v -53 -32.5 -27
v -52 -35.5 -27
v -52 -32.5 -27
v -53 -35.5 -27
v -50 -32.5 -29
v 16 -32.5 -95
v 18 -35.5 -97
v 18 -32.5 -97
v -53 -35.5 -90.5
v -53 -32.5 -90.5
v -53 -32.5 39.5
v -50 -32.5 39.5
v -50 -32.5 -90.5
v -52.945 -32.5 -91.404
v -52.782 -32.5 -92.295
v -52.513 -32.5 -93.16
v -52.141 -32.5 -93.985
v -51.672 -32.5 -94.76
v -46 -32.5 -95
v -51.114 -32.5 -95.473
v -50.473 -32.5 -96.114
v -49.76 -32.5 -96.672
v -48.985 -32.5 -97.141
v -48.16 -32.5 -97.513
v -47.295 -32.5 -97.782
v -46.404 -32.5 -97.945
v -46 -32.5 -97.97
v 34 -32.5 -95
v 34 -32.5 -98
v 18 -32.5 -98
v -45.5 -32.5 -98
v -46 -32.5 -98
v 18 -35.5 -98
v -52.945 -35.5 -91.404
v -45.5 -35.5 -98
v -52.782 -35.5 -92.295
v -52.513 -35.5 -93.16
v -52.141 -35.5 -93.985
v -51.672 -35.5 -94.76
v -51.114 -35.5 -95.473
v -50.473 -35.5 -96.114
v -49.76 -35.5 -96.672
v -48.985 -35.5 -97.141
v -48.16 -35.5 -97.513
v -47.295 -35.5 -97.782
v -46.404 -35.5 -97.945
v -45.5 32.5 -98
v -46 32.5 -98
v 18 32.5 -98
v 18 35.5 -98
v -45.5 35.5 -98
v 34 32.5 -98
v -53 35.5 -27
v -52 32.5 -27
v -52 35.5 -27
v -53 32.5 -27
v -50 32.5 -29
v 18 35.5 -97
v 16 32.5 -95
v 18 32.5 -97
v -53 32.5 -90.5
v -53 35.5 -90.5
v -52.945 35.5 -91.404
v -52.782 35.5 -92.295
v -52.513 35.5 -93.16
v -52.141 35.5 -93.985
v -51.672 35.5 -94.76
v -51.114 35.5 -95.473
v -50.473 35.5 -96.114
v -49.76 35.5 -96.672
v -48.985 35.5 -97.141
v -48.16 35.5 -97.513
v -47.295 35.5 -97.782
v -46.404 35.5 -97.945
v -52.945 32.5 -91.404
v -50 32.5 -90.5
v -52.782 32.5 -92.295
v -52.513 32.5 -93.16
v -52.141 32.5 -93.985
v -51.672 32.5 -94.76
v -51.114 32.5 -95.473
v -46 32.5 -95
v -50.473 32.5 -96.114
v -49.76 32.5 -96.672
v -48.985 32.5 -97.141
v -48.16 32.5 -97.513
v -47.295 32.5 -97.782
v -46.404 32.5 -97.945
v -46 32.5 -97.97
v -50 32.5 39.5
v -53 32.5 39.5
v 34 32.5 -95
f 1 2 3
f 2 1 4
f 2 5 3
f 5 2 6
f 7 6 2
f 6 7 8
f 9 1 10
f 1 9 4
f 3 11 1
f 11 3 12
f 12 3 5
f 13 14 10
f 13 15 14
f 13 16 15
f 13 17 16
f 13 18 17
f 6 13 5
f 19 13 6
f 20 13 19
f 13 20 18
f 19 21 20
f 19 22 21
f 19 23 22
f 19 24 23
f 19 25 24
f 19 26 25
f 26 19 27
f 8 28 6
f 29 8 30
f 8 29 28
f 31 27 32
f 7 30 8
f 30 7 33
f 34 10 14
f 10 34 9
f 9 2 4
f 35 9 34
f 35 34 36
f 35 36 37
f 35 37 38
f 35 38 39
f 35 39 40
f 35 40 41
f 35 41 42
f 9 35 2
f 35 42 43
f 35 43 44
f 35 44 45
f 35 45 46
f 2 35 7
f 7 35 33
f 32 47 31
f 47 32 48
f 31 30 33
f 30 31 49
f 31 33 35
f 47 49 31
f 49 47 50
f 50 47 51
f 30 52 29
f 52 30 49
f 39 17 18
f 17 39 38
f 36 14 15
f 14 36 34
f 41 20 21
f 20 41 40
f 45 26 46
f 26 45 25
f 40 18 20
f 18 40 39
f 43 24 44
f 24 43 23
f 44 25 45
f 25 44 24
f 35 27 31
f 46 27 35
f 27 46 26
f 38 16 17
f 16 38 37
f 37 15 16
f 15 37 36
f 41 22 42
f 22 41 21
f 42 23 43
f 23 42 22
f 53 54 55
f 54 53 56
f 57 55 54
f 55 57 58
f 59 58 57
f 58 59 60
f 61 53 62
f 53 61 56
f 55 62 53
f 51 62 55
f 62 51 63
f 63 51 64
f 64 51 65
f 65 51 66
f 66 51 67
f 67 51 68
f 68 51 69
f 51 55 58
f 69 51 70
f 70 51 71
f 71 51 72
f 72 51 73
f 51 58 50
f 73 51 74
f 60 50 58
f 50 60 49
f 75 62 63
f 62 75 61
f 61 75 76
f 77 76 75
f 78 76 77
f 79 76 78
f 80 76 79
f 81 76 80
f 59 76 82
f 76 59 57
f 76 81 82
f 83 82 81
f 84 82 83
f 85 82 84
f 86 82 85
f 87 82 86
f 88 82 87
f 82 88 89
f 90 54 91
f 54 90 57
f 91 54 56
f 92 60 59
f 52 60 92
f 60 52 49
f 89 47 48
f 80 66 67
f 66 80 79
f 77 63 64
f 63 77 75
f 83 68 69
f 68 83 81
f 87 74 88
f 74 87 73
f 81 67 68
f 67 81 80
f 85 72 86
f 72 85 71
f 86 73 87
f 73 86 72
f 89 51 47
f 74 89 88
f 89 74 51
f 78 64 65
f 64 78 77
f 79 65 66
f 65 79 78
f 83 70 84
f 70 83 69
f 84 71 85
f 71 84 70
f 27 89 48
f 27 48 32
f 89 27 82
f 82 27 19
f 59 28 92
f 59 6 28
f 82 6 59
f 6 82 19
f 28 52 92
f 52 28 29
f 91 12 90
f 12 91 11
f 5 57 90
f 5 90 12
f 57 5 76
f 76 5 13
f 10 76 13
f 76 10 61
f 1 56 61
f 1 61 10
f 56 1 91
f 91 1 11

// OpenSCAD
// brique = [95,60,170];
brique = [100,65,190];

%cube(brique, center=true);


translate([4.5-brique.x/2,0,4.5-brique.z/2]) {
    for (j=[-1,1]) translate([0,j*(brique.y/2+1.5),0]) hull() {
        hull() {
            for (i=[0,1]) translate([70*i-7,0,63-i*70]) cube([1,3,1], center=true);
            rotate([90,0,0]) cylinder(r=7.5,h=3,center=true,$fn=52);
        }
    }
    for (j=[0,1]) {
        translate([20+19.5,0,-6]) cube([80,brique.y,3], center=true);
        translate([-6,0,65]) rotate([0,90,0]) cube([130,65,3], center=true);
    }
}
